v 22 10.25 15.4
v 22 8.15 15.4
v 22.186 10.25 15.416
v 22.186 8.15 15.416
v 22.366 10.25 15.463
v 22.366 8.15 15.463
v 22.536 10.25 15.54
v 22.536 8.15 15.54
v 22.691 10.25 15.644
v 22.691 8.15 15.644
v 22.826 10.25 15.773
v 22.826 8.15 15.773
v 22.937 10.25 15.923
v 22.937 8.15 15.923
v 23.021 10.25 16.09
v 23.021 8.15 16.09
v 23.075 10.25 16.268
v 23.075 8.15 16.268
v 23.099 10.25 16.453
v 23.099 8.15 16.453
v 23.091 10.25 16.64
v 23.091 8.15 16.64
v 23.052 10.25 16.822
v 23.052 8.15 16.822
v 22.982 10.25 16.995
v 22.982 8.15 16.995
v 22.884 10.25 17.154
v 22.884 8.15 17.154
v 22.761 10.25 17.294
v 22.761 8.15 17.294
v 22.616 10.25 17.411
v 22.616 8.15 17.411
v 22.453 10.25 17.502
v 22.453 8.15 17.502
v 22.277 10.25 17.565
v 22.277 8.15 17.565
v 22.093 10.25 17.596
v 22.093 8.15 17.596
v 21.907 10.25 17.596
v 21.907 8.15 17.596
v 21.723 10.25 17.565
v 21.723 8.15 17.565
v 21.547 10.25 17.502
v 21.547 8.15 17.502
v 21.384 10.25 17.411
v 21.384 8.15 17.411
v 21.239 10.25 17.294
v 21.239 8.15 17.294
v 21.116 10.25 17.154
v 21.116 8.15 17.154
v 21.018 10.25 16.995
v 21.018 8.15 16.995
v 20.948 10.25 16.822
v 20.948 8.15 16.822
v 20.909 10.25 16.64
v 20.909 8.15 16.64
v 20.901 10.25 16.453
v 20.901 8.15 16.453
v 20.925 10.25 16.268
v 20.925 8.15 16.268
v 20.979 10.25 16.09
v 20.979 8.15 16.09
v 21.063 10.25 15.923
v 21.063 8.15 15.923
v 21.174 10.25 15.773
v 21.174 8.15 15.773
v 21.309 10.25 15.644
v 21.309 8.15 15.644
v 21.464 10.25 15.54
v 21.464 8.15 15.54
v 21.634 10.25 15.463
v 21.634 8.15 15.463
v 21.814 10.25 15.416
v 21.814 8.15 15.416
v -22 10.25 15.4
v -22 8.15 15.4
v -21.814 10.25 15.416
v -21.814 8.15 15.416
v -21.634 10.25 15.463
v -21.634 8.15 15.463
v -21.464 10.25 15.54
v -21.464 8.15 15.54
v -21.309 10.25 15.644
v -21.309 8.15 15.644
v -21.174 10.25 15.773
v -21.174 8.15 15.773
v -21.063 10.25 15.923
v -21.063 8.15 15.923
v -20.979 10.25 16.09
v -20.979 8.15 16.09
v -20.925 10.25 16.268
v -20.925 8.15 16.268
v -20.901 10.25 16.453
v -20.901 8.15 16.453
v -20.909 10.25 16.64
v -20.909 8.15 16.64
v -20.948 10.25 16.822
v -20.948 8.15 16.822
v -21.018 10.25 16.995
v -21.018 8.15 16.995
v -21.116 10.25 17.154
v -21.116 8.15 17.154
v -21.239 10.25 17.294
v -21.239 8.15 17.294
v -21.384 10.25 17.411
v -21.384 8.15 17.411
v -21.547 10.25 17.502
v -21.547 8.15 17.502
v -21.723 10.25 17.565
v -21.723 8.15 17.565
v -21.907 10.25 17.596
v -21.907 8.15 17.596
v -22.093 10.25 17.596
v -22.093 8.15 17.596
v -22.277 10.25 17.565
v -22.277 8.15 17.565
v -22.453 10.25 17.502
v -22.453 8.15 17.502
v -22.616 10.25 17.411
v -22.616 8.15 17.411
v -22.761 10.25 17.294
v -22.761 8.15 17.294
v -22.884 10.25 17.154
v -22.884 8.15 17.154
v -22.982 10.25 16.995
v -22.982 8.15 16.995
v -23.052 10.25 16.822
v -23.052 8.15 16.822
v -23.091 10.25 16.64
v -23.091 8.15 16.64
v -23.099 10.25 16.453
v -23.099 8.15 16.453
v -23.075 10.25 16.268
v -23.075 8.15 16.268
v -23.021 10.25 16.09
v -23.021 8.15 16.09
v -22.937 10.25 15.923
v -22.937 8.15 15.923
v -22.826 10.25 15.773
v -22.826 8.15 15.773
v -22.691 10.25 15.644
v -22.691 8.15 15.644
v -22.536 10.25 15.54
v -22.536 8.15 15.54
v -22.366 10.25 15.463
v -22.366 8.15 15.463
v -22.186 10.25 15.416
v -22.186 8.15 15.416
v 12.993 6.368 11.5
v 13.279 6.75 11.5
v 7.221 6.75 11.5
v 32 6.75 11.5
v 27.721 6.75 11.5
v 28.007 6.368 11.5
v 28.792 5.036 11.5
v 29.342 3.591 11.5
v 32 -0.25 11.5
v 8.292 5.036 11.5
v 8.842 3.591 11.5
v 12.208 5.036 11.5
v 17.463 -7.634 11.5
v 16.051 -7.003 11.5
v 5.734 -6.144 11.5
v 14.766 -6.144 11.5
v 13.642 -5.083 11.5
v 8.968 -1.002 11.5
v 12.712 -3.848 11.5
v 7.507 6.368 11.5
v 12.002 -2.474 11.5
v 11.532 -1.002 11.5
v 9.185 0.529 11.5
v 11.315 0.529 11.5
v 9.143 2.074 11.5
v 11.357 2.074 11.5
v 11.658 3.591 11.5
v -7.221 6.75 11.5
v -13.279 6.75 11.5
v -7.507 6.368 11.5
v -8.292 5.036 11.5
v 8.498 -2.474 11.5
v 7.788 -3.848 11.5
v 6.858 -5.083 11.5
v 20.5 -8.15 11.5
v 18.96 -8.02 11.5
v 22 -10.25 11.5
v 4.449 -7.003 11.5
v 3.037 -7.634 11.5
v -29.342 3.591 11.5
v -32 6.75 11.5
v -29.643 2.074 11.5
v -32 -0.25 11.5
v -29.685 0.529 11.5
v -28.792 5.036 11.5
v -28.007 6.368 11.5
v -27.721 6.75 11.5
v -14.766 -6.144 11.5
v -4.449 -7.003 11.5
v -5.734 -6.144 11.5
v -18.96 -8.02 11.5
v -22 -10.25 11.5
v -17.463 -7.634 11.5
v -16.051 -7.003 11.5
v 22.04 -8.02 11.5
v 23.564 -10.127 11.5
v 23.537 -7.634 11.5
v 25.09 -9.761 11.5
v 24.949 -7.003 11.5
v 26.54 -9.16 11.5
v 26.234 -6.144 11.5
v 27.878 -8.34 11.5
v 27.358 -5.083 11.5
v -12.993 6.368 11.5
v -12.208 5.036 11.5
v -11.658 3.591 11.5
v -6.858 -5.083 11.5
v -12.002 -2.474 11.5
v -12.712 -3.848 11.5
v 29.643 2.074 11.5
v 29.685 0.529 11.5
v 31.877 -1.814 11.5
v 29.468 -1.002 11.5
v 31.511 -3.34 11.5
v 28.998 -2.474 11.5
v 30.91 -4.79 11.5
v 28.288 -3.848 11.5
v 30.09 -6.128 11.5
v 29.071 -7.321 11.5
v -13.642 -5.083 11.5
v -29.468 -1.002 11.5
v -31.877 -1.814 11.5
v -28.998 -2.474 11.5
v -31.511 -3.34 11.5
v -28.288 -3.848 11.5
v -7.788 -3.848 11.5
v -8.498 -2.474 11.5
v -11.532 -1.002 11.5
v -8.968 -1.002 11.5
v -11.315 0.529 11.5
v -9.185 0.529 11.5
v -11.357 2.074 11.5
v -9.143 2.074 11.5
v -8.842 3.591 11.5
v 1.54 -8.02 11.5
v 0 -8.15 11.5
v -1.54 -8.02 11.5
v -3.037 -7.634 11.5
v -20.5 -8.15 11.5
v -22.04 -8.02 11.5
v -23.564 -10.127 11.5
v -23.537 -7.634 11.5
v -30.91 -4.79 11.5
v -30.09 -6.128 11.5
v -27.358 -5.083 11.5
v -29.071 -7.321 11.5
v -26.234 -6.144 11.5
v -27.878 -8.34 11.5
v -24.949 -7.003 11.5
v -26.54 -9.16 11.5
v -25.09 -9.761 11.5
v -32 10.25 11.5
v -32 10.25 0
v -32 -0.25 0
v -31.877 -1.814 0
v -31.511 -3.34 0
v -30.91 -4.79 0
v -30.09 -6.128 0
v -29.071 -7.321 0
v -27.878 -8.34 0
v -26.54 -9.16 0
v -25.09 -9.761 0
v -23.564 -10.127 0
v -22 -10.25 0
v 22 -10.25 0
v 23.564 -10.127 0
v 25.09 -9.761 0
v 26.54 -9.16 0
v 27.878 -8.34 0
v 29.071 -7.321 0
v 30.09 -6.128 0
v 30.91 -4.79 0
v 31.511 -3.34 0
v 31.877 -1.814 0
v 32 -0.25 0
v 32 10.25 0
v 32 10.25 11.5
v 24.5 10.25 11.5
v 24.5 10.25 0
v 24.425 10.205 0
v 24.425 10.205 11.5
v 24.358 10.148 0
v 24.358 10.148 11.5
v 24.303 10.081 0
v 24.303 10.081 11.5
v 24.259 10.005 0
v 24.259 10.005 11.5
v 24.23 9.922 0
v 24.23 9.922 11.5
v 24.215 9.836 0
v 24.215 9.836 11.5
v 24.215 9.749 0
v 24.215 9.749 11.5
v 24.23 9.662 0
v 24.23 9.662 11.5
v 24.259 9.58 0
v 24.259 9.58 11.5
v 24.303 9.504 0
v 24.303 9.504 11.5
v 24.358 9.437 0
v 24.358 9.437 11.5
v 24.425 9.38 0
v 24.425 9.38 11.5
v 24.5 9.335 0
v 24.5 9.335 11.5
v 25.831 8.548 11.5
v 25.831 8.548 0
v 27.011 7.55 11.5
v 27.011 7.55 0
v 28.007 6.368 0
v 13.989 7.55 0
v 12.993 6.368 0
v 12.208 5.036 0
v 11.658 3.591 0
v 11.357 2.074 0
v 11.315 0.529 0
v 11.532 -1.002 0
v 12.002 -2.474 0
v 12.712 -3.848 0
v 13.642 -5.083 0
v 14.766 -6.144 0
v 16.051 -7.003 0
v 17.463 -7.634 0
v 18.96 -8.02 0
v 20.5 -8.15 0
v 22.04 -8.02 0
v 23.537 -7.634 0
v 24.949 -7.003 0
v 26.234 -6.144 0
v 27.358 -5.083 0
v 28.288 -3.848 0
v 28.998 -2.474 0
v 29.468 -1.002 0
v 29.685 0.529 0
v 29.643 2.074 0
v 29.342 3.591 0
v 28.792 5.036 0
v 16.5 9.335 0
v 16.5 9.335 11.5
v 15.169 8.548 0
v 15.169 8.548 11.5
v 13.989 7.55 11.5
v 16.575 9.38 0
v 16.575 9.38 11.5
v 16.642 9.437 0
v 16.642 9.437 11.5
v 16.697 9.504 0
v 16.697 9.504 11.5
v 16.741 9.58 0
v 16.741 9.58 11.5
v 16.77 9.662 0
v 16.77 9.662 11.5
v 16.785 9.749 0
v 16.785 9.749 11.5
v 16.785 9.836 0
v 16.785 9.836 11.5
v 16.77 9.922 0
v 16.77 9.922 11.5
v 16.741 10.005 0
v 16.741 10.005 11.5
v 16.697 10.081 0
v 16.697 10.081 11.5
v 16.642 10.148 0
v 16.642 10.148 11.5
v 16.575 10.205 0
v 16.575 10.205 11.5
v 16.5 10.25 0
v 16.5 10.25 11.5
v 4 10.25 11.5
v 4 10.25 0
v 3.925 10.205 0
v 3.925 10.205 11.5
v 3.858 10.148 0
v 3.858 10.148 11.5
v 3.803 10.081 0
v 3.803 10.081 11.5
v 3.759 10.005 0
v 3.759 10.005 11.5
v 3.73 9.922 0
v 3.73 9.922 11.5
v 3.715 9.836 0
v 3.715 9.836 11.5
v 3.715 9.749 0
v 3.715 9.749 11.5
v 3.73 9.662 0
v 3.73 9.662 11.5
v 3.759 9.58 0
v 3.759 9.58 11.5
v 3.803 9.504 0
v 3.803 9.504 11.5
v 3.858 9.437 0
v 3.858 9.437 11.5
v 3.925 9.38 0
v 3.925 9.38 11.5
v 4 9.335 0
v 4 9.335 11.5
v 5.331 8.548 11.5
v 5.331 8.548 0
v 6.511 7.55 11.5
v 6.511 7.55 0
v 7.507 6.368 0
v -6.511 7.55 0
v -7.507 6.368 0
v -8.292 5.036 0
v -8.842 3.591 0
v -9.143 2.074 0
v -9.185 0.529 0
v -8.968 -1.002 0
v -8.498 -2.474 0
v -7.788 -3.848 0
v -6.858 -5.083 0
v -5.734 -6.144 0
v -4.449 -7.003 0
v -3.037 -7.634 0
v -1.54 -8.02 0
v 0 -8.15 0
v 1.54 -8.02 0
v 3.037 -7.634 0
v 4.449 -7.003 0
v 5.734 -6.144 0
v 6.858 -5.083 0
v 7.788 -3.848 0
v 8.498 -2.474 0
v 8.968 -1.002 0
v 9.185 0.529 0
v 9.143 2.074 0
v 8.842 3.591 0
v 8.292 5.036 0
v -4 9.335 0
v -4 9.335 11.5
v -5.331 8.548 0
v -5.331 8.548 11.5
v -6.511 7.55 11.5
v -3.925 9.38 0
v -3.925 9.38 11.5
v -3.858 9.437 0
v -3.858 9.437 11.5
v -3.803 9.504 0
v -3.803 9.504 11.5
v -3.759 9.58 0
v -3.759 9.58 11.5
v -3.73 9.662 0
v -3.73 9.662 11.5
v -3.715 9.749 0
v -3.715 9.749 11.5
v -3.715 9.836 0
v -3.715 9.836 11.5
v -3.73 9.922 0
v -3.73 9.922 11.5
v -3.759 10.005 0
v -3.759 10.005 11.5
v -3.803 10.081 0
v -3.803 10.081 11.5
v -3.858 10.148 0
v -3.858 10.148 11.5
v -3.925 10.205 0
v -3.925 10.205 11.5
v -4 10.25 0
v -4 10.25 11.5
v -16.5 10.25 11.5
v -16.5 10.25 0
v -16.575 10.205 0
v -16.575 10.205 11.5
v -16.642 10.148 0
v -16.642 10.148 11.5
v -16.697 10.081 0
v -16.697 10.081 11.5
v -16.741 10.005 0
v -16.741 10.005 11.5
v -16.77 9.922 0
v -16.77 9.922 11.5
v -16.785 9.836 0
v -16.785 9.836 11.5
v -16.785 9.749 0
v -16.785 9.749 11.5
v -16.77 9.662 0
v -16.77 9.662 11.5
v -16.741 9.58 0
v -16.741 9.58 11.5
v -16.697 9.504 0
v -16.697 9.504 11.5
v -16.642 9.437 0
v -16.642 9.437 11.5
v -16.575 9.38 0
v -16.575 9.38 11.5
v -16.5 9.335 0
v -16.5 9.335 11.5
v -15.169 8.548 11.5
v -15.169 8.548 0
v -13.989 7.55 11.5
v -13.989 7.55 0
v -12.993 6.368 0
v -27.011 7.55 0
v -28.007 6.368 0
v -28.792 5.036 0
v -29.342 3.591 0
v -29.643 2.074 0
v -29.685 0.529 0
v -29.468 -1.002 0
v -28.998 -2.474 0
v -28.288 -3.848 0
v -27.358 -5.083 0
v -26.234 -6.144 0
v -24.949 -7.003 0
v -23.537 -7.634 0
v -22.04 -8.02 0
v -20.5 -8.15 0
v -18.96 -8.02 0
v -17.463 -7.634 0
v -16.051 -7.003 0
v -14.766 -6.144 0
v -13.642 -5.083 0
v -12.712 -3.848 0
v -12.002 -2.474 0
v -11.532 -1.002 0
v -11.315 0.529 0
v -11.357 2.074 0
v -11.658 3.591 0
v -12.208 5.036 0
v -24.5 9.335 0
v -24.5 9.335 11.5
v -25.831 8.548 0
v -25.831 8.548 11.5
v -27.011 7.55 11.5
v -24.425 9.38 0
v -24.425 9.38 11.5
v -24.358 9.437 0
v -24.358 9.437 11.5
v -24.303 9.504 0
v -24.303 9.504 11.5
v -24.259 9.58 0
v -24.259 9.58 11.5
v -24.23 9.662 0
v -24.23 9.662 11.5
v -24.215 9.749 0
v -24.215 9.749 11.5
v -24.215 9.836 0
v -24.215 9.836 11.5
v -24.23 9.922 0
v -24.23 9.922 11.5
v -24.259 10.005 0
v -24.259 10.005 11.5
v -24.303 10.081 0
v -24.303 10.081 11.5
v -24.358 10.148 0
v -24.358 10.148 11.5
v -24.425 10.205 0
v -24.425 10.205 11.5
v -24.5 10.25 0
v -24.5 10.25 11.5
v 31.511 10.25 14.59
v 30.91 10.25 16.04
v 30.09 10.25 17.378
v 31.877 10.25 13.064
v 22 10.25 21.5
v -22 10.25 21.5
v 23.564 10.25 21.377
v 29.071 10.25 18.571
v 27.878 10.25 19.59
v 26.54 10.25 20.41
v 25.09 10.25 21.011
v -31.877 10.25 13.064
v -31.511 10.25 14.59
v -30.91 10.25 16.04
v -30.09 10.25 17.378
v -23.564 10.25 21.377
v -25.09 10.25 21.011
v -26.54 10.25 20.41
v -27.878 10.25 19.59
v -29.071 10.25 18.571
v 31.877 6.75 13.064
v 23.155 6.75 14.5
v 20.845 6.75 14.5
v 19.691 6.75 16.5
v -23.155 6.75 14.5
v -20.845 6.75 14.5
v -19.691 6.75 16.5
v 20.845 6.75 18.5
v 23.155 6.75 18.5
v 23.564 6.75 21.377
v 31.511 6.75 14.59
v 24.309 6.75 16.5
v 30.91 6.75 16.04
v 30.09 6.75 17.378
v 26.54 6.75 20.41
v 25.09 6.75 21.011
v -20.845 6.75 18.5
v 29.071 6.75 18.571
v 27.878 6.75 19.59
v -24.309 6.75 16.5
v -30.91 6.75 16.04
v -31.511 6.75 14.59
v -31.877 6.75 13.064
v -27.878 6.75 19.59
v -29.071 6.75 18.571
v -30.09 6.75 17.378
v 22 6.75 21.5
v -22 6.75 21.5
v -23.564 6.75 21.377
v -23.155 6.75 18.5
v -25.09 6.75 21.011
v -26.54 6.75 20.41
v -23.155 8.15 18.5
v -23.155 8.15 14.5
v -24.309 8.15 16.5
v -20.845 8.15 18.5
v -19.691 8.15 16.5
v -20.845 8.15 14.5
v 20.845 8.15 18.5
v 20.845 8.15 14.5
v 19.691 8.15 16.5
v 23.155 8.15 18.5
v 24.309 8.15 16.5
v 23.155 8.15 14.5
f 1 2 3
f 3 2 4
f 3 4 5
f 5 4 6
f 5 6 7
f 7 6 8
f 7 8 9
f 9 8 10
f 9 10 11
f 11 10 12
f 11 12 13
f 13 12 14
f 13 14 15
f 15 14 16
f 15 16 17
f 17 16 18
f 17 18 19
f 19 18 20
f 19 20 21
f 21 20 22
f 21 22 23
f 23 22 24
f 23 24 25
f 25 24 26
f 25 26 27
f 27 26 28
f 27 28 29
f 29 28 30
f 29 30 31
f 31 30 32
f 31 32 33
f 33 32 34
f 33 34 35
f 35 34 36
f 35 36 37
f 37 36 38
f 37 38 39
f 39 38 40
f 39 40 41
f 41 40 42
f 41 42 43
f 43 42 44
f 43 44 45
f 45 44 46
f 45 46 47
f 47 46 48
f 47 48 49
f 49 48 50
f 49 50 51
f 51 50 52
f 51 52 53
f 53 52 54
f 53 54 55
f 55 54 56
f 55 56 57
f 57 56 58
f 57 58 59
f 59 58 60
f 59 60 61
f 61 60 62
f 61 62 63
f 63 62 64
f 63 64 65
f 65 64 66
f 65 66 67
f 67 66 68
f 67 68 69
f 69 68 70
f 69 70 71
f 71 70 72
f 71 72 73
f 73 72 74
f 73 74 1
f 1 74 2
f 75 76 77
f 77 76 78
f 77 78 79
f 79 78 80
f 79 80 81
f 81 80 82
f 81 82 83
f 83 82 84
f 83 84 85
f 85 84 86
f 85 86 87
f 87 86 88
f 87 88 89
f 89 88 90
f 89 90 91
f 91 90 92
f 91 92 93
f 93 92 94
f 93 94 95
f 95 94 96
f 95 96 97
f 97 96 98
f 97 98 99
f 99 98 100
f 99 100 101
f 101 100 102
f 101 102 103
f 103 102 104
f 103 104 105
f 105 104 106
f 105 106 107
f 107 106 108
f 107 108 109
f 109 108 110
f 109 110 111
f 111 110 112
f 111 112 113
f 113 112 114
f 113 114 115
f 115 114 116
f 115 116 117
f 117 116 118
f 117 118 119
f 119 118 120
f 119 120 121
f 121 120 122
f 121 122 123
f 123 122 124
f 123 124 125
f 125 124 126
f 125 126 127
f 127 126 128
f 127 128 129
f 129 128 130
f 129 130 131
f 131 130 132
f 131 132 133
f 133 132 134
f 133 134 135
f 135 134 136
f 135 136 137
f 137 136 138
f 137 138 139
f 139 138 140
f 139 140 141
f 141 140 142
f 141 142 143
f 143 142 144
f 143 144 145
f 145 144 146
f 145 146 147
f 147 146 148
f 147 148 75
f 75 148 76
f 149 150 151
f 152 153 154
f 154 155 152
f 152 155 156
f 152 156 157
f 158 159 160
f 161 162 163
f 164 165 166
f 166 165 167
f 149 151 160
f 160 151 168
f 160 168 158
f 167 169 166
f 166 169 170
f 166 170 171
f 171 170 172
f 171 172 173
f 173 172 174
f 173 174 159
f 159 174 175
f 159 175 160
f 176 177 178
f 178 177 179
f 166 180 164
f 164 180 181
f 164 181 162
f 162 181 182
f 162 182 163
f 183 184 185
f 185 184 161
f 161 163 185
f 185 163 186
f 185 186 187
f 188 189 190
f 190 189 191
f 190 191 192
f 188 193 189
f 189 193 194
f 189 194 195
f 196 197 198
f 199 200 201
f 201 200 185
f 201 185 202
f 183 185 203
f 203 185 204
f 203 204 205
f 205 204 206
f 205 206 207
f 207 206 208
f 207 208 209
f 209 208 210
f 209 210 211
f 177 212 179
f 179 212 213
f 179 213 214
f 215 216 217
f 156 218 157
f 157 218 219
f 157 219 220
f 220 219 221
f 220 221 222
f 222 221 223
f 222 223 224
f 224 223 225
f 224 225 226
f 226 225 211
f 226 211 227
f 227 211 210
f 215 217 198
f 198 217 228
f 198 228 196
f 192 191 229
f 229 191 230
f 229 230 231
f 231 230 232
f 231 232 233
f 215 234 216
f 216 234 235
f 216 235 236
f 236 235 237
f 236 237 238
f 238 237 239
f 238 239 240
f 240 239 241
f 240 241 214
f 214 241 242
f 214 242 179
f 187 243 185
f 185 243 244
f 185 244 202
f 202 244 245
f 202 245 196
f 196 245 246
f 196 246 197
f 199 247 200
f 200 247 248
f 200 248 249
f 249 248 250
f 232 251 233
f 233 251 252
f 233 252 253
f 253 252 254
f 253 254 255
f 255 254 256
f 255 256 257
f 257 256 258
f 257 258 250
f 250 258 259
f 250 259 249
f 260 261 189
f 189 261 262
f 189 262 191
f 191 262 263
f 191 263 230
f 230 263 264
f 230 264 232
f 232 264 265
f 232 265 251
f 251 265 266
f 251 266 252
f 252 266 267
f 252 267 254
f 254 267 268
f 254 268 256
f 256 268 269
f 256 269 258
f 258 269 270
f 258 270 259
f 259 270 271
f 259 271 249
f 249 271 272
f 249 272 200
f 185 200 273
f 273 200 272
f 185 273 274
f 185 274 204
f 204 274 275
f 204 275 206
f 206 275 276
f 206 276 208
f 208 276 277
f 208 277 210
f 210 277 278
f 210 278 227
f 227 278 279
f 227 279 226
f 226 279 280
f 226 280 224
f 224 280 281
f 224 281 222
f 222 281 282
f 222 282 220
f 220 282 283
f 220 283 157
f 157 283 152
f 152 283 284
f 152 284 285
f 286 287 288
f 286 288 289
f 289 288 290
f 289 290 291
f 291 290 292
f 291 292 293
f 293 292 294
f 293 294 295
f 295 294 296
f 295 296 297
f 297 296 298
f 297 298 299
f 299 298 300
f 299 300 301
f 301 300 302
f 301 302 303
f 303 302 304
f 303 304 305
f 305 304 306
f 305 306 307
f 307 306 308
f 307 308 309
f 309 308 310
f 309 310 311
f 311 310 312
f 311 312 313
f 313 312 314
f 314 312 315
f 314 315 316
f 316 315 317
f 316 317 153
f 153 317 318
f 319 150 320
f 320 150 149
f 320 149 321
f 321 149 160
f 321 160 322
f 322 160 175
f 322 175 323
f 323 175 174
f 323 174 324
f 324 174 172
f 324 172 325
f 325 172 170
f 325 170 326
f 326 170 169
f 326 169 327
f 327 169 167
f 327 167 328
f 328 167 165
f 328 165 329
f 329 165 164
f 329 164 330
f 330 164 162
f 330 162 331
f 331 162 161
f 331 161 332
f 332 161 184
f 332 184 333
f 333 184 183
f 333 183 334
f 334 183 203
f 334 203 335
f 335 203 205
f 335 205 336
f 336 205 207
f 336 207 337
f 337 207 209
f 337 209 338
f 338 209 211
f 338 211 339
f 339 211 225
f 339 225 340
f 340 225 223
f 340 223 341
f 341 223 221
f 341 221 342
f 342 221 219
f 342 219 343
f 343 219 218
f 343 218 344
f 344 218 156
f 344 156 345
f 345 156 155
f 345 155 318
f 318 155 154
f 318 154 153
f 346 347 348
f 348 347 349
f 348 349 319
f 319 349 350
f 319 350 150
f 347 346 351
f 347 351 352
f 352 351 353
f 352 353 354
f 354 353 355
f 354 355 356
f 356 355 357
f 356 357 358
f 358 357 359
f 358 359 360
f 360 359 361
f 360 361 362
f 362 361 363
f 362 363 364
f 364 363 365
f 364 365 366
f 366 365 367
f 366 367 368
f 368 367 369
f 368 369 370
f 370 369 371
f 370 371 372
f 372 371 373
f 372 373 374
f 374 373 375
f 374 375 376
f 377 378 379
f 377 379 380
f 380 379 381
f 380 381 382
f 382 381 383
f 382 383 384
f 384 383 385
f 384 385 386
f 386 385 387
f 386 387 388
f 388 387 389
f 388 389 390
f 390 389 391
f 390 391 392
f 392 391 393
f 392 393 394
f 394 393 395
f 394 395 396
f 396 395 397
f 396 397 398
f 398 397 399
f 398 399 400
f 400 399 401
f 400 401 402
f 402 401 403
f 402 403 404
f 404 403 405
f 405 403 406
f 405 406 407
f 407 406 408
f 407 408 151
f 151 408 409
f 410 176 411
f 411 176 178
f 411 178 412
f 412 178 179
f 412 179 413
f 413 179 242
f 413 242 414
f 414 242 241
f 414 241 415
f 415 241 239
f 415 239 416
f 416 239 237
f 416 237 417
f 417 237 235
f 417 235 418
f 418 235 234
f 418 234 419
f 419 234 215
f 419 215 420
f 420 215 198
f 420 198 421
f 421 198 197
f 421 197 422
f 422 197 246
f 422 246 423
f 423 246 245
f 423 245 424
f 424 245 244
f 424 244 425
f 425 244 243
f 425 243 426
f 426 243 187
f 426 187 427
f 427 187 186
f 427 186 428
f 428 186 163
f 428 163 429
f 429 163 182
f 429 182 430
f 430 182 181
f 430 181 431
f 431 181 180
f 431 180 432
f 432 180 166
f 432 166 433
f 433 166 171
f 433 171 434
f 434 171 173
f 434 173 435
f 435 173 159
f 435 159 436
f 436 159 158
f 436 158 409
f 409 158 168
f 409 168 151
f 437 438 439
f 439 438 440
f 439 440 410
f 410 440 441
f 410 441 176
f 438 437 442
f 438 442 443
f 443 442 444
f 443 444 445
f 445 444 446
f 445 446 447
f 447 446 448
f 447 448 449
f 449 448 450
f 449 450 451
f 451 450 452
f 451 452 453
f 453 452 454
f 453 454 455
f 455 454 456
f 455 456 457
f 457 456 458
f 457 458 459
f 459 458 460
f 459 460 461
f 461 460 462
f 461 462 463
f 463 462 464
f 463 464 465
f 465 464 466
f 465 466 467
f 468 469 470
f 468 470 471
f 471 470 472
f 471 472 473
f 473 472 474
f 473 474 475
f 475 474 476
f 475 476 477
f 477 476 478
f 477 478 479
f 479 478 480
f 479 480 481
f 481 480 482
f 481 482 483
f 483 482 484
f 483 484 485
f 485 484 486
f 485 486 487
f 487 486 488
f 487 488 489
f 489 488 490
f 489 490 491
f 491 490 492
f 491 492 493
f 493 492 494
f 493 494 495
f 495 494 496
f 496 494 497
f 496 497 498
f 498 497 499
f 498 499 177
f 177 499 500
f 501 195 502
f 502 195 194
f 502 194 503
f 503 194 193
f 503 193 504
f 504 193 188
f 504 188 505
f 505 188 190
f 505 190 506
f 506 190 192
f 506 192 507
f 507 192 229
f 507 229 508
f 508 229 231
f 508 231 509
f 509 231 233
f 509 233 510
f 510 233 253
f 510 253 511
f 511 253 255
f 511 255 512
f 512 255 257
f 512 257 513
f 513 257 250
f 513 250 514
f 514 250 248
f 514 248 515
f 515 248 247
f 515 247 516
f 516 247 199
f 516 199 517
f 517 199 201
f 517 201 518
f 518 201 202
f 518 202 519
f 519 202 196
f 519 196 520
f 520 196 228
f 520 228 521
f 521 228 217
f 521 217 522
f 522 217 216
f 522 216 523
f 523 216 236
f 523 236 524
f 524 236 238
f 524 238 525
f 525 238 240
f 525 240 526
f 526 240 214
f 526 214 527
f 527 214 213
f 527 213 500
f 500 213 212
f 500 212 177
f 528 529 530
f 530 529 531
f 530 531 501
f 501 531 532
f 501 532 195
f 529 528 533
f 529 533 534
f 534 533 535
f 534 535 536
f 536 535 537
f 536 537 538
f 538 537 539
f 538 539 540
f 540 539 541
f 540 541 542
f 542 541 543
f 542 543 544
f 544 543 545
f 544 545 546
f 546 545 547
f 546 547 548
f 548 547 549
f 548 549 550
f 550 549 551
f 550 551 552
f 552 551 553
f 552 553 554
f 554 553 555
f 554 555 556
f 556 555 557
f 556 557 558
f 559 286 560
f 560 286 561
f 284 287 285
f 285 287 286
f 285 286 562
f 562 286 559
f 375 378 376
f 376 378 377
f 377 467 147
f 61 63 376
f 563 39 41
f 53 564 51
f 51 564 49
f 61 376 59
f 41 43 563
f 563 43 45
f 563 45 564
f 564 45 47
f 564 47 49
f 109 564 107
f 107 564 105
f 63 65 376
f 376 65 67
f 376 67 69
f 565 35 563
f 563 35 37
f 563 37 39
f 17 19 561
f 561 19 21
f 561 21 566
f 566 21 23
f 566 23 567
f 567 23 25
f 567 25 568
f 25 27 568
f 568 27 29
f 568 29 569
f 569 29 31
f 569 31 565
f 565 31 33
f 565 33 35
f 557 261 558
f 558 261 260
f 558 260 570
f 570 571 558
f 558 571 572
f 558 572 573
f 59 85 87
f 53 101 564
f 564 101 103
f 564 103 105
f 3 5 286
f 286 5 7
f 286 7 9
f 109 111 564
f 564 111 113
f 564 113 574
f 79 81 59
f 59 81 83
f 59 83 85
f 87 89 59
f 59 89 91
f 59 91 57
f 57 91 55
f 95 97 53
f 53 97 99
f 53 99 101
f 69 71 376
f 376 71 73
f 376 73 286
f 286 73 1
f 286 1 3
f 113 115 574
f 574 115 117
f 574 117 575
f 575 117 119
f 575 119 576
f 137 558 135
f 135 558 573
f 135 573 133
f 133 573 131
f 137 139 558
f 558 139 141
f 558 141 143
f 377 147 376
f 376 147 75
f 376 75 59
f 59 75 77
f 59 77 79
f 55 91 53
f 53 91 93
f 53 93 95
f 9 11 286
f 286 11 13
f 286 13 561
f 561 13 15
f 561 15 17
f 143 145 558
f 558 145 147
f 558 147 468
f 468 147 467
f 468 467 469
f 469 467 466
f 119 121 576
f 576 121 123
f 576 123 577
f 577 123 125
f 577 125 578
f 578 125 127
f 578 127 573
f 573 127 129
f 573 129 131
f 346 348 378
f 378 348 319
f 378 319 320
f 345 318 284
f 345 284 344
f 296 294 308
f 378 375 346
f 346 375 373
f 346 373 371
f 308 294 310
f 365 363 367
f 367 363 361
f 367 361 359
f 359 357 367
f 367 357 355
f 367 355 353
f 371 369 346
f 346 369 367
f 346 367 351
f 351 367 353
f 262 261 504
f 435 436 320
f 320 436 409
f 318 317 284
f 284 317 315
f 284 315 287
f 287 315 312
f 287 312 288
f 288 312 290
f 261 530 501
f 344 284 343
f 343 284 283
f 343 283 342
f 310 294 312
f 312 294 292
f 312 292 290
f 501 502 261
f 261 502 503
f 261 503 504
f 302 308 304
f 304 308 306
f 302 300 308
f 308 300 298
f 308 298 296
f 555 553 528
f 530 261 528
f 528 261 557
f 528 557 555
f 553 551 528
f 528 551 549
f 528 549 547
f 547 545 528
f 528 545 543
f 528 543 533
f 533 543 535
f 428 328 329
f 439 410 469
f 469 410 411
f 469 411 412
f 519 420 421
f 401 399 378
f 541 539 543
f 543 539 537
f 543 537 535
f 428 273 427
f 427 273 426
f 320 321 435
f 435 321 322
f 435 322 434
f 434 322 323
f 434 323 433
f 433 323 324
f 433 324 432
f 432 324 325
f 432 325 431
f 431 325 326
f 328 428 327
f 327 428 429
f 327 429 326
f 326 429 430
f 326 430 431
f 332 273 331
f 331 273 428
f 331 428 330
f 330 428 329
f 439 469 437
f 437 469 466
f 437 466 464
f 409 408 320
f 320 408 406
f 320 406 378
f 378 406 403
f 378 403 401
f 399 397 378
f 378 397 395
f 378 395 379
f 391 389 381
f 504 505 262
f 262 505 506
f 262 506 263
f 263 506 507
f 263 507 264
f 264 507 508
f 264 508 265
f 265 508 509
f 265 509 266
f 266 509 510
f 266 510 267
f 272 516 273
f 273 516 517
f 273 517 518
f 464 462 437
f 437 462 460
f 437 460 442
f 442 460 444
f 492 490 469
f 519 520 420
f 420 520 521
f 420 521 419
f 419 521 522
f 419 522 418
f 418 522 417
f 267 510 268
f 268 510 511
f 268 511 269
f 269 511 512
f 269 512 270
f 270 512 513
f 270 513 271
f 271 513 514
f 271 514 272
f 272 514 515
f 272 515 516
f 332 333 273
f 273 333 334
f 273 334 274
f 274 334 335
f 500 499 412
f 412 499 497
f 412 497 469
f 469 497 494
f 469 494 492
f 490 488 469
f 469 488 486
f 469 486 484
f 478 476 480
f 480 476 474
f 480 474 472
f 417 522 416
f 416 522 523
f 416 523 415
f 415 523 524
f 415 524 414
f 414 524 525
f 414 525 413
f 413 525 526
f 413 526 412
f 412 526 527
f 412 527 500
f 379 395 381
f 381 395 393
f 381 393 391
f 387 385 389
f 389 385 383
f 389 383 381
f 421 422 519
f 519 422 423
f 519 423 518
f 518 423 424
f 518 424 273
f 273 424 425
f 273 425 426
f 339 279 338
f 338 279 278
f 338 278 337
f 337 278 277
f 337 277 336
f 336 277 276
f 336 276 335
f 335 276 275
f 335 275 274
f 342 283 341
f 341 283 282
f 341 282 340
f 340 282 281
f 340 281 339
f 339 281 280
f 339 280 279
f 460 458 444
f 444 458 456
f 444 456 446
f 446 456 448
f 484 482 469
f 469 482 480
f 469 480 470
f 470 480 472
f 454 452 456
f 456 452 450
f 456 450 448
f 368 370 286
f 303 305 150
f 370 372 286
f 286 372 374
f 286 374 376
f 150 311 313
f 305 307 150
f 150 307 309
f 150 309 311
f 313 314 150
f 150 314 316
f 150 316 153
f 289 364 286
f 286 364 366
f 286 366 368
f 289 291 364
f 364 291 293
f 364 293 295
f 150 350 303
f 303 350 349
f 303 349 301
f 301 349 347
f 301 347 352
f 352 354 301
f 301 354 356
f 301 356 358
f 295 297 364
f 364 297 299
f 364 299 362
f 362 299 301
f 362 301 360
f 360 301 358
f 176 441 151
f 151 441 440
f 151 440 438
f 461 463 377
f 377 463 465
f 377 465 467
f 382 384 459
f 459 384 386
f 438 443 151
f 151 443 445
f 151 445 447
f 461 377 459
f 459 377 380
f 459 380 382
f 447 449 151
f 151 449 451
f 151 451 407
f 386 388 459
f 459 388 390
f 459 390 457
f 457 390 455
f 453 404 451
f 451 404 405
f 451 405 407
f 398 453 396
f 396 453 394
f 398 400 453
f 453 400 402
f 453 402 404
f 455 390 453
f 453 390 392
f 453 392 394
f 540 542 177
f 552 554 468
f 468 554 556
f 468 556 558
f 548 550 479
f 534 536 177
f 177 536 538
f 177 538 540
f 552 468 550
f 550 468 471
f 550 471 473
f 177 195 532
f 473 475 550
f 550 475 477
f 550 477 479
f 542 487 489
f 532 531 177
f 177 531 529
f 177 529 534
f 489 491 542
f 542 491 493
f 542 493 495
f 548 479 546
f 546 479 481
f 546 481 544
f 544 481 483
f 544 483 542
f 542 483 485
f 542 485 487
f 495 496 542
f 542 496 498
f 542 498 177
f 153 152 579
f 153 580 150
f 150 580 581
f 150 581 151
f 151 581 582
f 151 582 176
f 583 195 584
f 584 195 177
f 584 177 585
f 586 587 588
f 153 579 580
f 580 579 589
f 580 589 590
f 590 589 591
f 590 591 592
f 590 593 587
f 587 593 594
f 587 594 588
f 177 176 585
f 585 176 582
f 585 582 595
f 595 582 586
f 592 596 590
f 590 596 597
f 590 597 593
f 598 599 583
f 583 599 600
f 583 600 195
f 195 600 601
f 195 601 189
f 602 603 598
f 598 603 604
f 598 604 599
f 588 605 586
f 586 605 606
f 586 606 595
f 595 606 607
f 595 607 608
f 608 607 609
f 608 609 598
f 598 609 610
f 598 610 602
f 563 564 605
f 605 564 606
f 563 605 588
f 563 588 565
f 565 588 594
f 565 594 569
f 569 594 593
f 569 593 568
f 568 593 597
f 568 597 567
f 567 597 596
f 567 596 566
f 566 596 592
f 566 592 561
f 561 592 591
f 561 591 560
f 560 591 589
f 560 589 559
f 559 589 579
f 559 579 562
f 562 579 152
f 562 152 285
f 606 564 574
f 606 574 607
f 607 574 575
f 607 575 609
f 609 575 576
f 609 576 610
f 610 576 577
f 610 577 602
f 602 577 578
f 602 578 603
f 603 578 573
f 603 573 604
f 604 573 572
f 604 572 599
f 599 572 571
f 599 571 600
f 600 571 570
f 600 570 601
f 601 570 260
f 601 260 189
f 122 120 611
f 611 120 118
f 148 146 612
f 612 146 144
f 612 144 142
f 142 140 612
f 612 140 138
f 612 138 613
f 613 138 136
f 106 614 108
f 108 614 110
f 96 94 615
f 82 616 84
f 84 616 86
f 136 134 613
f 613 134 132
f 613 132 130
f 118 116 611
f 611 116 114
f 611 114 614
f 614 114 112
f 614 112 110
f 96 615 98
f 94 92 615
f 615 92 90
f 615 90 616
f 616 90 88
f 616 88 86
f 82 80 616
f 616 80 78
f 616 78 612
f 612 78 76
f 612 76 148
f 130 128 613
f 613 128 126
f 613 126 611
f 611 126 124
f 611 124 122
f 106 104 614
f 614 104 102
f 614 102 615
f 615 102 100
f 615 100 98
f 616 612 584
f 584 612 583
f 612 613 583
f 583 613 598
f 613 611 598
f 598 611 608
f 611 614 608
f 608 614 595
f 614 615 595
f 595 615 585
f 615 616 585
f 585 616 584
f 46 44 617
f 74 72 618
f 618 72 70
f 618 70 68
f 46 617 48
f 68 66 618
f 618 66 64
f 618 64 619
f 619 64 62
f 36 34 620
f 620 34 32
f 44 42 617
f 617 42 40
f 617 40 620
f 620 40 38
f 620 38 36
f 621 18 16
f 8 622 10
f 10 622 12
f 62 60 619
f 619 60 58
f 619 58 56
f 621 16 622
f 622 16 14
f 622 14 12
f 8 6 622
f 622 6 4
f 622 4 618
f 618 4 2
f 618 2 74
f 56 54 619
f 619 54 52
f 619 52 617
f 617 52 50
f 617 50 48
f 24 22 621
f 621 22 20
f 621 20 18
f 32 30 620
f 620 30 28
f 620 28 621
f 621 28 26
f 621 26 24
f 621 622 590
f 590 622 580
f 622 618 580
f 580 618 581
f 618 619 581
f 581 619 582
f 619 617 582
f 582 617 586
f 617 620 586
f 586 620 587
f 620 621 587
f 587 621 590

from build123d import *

# Parameters (mm, degrees)
BOSS_EXTRU_2_DEPTH      = 11.5
ESQUISSE2_W             = 64
ESQUISSE2_H             = 3.5
BOSS_EXTRU_3_DEPTH      = 10
CONG_1_R                = 10
ESQUISSE3_R             = 1.1
ENL_V_MAT_EXTRU_1_DEPTH = 4.5
ENL_V_MAT_EXTRU_2_DEPTH = 1.4


with BuildPart() as part:
    # Esquisse1 → Boss.-Extru.2 (new body)
    with BuildSketch(Plane.XY):
        with BuildLine():
            Line((-32, 10.25), (-24.5, 10.25))
            ThreePointArc((-24.5, 10.25), (-24.212828793, 9.792463035), (-24.5, 9.334926071))
            ThreePointArc((-24.5, 9.334926071), (-20.5, -8.15), (-16.5, 9.334926071))
            ThreePointArc((-16.5, 9.334926071), (-16.787171207, 9.792463035), (-16.5, 10.25))
            Line((-16.5, 10.25), (-4, 10.25))
            ThreePointArc((-4, 10.25), (-3.712828793, 9.792463035), (-4, 9.334926071))
            ThreePointArc((-4, 9.334926071), (0, -8.15), (4, 9.334926071))
            ThreePointArc((4, 9.334926071), (3.712828793, 9.792463035), (4, 10.25))
            Line((4, 10.25), (16.5, 10.25))
            ThreePointArc((16.5, 10.25), (16.787171207, 9.792463035), (16.5, 9.334926071))
            ThreePointArc((16.5, 9.334926071), (20.5, -8.15), (24.5, 9.334926071))
            ThreePointArc((24.5, 9.334926071), (24.212828793, 9.792463035), (24.5, 10.25))
            Line((24.5, 10.25), (32, 10.25))
            Line((32, 10.25), (32, -0.25))
            ThreePointArc((32, -0.25), (29.071067812, -7.321067812), (22, -10.25))
            Line((22, -10.25), (-22, -10.25))
            ThreePointArc((-22, -10.25), (-29.071067812, -7.321067812), (-32, -0.25))
            Line((-32, -0.25), (-32, 10.25))
        make_face()
    extrude(amount=BOSS_EXTRU_2_DEPTH)

    # Esquisse2 → Boss.-Extru.3 (add)
    with BuildSketch(Plane.XY.offset(11.5)):
        with Locations((0, 8.5)):
            Rectangle(ESQUISSE2_W, ESQUISSE2_H)
    extrude(amount=BOSS_EXTRU_3_DEPTH)

    # Congé1
    cong_1_edges = [part.edges().sort_by_distance(p)[0] for p in [
        (32, 8.5, 21.5),
        (-32, 8.5, 21.5),
    ]]
    fillet(cong_1_edges, radius=CONG_1_R)

    # Esquisse3 → Enlèv. mat.-Extru.1 (cut, through all)
    with BuildSketch(Plane.XZ.offset(-6.75)):
        with Locations((-22, 16.5)):
            Circle(ESQUISSE3_R)
        with Locations((22, 16.5)):
            Circle(ESQUISSE3_R)
    extrude(amount=-ENL_V_MAT_EXTRU_1_DEPTH, mode=Mode.SUBTRACT)

    # Esquisse4 → Enlèv. mat.-Extru.2 (cut)
    with BuildSketch(Plane.XZ.offset(-6.75)):
        Polygon((-20.845299462, 14.5), (-19.690598923, 16.5), (-20.845299462, 18.5), (-23.154700538, 18.5), (-24.309401077, 16.5), (-23.154700538, 14.5), align=None)
        Polygon((24.309401077, 16.5), (23.154700538, 18.5), (20.845299462, 18.5), (19.690598923, 16.5), (20.845299462, 14.5), (23.154700538, 14.5), align=None)
    extrude(amount=-ENL_V_MAT_EXTRU_2_DEPTH, mode=Mode.SUBTRACT)


solid = part.part
